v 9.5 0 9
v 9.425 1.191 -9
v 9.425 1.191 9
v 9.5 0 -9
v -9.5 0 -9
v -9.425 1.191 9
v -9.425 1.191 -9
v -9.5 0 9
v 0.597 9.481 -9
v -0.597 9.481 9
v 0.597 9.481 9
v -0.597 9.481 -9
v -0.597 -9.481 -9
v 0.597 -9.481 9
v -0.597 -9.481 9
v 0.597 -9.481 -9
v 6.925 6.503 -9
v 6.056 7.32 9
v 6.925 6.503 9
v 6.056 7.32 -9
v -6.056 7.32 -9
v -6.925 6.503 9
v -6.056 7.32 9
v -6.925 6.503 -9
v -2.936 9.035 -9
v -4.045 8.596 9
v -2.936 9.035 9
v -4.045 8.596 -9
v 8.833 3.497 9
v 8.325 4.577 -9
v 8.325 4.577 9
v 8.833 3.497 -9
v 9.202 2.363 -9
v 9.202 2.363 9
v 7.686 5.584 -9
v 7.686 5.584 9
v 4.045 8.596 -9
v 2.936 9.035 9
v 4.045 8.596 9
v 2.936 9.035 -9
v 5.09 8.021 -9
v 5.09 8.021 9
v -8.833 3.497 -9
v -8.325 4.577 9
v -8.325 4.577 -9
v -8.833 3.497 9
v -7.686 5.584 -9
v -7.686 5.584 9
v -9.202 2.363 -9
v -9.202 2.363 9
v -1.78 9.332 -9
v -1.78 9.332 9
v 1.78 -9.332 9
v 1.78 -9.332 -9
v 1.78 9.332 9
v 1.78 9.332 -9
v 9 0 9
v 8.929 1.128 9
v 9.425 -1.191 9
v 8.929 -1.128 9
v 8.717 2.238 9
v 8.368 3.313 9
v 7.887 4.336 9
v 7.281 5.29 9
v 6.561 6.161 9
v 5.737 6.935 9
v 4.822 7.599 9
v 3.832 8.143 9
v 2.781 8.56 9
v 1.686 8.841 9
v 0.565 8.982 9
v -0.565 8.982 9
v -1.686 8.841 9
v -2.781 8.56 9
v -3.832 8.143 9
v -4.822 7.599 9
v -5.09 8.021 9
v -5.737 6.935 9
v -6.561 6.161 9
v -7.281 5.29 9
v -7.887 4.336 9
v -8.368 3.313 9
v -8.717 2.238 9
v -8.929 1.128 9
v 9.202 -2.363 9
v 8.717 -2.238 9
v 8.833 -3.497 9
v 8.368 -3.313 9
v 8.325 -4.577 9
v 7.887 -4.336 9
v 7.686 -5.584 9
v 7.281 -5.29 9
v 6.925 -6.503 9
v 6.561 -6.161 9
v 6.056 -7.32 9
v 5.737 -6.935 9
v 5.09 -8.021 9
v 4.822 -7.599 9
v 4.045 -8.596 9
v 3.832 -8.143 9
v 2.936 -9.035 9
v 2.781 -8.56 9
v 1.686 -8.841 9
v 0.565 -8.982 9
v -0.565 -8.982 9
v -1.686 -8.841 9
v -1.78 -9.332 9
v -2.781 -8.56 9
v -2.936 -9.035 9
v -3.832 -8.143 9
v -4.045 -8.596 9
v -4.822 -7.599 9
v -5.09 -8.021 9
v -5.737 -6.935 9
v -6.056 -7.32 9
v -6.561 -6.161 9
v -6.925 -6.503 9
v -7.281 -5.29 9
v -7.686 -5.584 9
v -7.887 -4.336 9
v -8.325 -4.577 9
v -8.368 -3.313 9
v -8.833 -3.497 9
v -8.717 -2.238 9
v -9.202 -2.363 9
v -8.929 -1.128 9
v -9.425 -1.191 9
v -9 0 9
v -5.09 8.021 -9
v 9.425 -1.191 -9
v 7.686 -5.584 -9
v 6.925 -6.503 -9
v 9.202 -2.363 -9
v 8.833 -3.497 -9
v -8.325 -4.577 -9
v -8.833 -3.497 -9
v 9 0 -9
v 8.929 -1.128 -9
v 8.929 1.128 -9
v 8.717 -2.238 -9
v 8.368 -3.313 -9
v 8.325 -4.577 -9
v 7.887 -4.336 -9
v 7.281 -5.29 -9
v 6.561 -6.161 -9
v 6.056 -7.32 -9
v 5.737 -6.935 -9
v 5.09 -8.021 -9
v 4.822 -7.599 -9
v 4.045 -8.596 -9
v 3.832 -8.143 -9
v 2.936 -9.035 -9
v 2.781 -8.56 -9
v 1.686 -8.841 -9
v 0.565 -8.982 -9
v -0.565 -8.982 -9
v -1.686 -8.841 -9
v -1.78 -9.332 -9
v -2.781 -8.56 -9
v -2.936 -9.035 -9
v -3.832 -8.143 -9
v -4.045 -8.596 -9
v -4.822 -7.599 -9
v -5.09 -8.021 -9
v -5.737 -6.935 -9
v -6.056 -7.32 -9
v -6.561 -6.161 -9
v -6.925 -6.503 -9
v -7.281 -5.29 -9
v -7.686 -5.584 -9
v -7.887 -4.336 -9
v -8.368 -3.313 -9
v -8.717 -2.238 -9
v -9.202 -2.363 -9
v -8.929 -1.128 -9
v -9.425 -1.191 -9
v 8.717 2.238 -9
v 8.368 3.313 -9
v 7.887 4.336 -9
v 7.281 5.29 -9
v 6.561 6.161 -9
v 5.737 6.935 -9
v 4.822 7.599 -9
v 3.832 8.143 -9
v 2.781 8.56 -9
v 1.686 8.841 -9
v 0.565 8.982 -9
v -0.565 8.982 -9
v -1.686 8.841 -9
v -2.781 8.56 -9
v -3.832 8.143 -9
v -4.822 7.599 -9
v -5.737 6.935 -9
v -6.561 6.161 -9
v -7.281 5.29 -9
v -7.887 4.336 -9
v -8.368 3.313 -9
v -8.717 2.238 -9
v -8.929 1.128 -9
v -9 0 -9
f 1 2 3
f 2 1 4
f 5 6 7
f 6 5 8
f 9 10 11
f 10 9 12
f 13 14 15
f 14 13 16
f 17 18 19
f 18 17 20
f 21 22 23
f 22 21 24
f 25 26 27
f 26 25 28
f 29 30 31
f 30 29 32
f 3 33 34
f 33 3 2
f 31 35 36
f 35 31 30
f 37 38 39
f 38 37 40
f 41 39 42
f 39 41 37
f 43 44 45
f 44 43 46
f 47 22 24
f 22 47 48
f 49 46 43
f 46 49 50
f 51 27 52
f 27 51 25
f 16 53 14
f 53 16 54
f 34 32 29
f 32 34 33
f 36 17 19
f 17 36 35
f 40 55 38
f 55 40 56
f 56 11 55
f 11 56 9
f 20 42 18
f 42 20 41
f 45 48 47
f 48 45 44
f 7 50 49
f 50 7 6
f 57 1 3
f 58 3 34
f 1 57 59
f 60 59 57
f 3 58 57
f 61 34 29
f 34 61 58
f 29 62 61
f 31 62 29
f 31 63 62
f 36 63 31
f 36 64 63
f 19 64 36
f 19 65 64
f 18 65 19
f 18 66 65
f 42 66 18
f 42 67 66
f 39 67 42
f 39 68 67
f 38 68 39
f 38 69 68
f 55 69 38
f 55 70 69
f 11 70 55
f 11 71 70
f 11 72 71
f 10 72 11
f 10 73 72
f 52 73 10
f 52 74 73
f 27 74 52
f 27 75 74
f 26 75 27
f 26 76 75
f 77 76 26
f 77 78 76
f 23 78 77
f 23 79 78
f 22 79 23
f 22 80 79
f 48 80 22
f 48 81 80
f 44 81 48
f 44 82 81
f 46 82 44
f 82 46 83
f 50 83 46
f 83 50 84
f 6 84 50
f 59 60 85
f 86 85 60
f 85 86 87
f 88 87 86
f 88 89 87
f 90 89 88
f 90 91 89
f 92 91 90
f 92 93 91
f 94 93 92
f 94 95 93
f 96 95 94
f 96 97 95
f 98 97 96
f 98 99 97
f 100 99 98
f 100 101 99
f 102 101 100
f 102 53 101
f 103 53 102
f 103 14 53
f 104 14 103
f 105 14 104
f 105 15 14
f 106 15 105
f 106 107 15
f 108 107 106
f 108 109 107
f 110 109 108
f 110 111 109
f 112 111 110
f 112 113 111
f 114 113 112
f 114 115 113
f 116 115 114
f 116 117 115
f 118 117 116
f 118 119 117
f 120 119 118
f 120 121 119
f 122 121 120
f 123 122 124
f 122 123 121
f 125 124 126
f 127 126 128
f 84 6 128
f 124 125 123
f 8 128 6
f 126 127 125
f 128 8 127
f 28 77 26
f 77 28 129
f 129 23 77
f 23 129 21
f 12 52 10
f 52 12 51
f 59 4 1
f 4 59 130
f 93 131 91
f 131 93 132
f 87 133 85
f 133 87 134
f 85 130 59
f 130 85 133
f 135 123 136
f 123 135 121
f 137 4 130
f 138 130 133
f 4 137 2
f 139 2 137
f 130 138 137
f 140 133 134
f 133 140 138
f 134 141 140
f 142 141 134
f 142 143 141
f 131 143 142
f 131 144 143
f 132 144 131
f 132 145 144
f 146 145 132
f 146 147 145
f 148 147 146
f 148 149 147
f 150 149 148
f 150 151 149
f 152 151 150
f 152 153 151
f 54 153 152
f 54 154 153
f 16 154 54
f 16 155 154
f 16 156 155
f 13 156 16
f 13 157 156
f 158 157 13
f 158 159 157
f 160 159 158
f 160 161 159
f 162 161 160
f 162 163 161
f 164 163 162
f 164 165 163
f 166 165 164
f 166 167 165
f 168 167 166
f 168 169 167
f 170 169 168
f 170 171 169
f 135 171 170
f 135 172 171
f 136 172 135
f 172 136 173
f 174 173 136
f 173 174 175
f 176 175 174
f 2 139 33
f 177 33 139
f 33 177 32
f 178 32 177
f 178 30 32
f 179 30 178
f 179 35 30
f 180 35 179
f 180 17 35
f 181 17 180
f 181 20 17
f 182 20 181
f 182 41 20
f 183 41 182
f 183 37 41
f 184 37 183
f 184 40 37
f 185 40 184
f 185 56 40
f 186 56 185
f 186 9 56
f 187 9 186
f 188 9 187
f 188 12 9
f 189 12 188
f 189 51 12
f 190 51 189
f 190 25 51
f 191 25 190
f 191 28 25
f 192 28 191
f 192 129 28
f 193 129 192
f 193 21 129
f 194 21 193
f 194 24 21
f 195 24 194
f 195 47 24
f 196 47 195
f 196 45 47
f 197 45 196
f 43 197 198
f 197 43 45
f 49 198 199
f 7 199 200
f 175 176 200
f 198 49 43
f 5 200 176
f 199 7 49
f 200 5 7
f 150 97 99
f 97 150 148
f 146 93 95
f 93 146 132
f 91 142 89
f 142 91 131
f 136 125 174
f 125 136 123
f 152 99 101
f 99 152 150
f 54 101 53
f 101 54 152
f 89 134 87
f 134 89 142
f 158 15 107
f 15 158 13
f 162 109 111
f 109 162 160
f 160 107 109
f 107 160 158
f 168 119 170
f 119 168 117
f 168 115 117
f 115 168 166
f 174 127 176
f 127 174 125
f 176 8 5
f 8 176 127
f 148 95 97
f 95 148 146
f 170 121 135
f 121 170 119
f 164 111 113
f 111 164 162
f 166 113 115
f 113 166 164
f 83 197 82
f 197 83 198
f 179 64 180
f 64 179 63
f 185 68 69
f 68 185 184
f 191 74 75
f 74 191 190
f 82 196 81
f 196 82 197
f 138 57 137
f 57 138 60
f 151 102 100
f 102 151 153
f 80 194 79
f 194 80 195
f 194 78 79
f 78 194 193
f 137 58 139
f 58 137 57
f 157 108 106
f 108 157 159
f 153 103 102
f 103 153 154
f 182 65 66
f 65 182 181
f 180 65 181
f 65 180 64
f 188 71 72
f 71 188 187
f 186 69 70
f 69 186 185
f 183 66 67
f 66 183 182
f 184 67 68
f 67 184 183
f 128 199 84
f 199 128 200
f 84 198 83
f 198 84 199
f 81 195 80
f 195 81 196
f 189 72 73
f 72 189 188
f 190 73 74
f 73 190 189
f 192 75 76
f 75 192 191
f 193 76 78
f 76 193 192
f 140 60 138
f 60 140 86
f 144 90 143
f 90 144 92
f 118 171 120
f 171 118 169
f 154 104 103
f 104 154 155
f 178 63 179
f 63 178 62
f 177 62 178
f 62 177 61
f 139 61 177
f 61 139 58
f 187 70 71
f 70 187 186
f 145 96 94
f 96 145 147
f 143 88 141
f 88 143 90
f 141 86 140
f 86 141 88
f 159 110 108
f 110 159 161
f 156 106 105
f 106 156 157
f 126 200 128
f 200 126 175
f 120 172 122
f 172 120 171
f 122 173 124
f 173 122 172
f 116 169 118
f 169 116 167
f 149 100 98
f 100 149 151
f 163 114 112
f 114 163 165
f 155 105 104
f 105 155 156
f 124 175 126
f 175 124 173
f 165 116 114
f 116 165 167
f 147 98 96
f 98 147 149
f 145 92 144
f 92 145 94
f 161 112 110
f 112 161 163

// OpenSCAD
$fn = 50;


difference() {
	union() {
		translate(v = [0, 0, -9.0000000000]) {
			cylinder(h = 18, r = 9.5000000000);
		}
	}
	union() {
		translate(v = [0, 0, -100.0000000000]) {
			cylinder(h = 200, r = 9);
		}
	}
}
